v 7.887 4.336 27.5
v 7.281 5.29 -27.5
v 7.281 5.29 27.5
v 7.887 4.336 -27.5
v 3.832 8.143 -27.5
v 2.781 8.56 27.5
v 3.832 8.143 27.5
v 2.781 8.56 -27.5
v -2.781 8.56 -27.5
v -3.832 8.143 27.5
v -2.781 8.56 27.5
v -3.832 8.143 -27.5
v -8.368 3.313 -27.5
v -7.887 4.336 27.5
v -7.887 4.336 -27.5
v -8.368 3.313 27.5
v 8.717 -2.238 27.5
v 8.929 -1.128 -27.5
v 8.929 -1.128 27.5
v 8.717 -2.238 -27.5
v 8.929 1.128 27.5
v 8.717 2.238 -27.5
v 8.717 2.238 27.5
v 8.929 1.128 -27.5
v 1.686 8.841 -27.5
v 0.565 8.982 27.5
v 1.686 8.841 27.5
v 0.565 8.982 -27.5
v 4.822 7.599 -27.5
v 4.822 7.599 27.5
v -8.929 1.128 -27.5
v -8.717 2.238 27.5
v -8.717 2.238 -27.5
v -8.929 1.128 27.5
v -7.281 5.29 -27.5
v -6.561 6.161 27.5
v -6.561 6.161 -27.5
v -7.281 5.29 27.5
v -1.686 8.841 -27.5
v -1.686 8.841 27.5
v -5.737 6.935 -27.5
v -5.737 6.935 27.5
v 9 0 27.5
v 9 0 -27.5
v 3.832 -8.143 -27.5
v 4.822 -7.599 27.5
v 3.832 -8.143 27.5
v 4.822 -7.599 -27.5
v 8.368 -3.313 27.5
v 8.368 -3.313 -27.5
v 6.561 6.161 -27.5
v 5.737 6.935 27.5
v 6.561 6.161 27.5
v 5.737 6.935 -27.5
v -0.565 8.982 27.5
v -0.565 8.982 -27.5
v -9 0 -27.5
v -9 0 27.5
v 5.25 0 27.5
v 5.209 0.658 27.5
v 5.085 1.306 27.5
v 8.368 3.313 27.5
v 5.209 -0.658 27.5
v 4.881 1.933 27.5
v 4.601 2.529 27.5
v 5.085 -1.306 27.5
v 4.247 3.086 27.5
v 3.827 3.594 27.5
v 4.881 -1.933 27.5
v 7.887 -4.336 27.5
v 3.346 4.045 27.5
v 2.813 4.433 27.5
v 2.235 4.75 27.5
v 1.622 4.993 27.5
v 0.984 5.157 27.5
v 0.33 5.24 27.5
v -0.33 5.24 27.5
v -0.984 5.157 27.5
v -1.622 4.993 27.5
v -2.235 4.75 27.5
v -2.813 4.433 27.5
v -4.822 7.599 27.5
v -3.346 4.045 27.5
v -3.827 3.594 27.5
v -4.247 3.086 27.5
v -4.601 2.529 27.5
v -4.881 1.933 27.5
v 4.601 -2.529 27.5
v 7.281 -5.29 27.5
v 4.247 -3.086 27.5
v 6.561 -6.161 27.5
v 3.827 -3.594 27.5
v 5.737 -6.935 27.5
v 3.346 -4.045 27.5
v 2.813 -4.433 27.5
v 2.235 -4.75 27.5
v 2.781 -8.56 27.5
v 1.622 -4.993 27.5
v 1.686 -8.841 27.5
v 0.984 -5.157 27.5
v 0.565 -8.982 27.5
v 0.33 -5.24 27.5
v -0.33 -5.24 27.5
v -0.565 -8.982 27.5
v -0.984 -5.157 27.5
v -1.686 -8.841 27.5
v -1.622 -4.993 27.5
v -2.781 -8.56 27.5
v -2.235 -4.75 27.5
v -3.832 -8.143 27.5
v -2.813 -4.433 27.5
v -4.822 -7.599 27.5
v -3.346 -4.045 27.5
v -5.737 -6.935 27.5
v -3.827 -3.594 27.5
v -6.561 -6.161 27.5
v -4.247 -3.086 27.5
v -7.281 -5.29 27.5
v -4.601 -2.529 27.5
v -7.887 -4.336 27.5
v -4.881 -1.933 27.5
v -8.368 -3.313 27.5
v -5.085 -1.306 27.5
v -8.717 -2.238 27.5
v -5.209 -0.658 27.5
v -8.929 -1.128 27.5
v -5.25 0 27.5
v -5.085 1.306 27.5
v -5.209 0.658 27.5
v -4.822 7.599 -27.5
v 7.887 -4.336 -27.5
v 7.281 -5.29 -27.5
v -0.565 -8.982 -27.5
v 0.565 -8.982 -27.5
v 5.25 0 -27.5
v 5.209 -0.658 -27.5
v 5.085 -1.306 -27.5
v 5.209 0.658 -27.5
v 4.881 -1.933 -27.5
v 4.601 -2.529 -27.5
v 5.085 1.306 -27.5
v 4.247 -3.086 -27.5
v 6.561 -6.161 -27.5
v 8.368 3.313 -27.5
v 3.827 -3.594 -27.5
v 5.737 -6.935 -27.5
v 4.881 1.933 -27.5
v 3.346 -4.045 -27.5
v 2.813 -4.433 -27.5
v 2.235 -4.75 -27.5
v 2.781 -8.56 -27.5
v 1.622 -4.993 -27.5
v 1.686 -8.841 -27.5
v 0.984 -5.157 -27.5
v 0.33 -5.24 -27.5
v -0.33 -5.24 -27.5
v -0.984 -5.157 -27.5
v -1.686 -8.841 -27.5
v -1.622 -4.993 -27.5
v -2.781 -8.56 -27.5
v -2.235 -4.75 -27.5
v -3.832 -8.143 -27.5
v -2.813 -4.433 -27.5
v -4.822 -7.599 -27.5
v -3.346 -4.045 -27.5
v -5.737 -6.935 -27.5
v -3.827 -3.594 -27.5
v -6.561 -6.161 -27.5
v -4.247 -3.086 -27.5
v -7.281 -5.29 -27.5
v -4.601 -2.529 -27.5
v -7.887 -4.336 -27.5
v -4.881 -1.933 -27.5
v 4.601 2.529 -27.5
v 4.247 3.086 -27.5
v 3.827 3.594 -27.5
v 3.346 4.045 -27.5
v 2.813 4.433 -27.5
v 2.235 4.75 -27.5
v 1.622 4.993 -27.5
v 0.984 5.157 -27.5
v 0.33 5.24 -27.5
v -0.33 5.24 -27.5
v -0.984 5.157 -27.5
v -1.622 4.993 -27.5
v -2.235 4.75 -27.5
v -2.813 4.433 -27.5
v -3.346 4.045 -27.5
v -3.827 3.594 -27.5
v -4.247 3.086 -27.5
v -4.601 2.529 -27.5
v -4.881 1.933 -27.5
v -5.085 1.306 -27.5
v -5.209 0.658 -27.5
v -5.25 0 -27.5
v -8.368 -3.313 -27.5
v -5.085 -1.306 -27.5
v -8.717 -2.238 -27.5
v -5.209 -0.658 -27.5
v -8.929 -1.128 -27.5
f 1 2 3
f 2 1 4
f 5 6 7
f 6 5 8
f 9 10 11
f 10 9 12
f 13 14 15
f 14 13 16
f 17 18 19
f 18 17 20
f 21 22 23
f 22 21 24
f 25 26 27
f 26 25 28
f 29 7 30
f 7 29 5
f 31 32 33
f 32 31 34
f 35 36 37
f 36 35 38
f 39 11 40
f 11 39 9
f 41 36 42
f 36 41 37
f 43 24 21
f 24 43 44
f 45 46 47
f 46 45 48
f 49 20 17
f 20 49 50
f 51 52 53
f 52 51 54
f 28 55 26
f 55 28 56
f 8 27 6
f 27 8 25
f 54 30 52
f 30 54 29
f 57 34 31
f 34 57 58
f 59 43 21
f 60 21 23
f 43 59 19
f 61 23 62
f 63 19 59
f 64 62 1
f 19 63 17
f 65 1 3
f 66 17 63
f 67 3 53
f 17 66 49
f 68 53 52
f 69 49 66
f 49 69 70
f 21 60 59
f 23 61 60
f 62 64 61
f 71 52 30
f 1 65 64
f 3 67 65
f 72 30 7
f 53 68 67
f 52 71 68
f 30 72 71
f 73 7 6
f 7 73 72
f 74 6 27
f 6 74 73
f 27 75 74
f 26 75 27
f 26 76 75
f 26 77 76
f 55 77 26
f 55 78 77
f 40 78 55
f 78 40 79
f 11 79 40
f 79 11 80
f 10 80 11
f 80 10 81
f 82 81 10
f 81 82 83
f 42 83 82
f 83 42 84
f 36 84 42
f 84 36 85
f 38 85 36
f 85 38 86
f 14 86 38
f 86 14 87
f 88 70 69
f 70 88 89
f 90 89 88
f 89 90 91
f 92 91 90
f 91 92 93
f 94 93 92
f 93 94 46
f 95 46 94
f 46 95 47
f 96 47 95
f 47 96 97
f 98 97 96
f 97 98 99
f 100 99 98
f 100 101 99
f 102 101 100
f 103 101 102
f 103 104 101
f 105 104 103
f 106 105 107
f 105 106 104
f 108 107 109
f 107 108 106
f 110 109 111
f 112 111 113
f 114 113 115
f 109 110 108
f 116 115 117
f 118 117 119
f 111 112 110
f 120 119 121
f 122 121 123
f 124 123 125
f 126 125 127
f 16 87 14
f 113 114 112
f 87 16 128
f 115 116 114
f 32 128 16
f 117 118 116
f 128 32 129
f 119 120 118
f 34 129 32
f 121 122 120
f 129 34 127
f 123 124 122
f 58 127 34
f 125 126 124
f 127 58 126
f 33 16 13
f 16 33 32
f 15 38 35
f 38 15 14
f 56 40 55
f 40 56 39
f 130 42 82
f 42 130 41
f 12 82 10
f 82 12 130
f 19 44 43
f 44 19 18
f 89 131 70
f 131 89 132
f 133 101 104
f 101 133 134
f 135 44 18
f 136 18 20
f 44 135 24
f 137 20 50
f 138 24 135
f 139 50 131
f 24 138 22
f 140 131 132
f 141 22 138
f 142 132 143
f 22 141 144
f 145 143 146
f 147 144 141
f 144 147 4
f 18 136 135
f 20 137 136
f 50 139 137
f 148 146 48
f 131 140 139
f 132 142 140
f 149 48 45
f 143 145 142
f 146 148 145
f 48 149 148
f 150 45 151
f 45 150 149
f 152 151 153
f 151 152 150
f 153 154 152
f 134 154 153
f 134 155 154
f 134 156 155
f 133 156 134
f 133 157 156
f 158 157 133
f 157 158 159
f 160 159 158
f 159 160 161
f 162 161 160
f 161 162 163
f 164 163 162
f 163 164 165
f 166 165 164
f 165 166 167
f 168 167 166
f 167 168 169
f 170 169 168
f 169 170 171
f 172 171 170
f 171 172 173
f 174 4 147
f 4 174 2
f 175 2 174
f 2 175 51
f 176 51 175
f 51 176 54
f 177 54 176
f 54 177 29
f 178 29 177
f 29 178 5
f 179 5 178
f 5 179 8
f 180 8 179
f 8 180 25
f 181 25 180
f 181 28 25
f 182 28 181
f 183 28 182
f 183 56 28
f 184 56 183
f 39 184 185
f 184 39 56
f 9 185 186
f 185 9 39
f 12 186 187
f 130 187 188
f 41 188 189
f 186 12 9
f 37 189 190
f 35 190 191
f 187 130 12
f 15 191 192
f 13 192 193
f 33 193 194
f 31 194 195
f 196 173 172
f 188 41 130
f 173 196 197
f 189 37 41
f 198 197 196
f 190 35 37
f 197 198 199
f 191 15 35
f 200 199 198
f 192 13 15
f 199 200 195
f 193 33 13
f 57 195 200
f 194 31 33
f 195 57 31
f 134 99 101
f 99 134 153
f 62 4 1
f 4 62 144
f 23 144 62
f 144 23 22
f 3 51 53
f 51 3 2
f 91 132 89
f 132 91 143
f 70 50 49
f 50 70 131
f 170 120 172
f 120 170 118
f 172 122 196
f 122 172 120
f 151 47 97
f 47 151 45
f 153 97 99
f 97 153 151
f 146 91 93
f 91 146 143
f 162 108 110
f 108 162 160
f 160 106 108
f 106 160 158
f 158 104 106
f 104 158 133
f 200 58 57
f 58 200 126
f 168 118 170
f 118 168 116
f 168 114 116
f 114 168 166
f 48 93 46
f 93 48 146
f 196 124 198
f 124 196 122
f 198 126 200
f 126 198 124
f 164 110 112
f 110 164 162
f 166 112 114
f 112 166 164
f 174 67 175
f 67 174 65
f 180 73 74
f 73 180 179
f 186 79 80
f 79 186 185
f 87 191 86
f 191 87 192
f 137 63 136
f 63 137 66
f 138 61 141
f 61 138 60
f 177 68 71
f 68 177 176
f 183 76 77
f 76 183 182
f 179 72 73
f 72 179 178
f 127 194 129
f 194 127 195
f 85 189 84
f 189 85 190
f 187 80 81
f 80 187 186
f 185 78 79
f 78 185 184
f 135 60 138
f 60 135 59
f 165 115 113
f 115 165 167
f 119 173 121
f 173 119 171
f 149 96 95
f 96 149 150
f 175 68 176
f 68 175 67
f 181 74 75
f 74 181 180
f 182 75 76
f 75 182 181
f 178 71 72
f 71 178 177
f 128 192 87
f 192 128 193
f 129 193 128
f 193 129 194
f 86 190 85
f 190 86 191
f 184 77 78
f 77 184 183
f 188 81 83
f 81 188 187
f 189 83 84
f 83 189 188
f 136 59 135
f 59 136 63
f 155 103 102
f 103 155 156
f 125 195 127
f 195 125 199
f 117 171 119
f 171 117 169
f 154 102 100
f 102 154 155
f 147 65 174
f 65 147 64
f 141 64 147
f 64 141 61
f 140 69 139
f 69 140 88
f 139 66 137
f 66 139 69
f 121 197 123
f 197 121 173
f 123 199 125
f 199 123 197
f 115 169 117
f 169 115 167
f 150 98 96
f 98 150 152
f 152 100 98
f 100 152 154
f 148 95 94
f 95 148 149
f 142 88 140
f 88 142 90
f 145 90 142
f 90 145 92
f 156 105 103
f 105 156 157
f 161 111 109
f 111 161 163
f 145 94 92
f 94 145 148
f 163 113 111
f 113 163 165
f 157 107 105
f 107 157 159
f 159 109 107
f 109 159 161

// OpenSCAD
$fn = 50;


difference() {
	union() {
		translate(v = [0, 0, -27.5000000000]) {
			cylinder(h = 55, r = 9.0000000000);
		}
	}
	union() {
		translate(v = [0, 0, -100.0000000000]) {
			cylinder(h = 200, r = 5.2500000000);
		}
	}
}
